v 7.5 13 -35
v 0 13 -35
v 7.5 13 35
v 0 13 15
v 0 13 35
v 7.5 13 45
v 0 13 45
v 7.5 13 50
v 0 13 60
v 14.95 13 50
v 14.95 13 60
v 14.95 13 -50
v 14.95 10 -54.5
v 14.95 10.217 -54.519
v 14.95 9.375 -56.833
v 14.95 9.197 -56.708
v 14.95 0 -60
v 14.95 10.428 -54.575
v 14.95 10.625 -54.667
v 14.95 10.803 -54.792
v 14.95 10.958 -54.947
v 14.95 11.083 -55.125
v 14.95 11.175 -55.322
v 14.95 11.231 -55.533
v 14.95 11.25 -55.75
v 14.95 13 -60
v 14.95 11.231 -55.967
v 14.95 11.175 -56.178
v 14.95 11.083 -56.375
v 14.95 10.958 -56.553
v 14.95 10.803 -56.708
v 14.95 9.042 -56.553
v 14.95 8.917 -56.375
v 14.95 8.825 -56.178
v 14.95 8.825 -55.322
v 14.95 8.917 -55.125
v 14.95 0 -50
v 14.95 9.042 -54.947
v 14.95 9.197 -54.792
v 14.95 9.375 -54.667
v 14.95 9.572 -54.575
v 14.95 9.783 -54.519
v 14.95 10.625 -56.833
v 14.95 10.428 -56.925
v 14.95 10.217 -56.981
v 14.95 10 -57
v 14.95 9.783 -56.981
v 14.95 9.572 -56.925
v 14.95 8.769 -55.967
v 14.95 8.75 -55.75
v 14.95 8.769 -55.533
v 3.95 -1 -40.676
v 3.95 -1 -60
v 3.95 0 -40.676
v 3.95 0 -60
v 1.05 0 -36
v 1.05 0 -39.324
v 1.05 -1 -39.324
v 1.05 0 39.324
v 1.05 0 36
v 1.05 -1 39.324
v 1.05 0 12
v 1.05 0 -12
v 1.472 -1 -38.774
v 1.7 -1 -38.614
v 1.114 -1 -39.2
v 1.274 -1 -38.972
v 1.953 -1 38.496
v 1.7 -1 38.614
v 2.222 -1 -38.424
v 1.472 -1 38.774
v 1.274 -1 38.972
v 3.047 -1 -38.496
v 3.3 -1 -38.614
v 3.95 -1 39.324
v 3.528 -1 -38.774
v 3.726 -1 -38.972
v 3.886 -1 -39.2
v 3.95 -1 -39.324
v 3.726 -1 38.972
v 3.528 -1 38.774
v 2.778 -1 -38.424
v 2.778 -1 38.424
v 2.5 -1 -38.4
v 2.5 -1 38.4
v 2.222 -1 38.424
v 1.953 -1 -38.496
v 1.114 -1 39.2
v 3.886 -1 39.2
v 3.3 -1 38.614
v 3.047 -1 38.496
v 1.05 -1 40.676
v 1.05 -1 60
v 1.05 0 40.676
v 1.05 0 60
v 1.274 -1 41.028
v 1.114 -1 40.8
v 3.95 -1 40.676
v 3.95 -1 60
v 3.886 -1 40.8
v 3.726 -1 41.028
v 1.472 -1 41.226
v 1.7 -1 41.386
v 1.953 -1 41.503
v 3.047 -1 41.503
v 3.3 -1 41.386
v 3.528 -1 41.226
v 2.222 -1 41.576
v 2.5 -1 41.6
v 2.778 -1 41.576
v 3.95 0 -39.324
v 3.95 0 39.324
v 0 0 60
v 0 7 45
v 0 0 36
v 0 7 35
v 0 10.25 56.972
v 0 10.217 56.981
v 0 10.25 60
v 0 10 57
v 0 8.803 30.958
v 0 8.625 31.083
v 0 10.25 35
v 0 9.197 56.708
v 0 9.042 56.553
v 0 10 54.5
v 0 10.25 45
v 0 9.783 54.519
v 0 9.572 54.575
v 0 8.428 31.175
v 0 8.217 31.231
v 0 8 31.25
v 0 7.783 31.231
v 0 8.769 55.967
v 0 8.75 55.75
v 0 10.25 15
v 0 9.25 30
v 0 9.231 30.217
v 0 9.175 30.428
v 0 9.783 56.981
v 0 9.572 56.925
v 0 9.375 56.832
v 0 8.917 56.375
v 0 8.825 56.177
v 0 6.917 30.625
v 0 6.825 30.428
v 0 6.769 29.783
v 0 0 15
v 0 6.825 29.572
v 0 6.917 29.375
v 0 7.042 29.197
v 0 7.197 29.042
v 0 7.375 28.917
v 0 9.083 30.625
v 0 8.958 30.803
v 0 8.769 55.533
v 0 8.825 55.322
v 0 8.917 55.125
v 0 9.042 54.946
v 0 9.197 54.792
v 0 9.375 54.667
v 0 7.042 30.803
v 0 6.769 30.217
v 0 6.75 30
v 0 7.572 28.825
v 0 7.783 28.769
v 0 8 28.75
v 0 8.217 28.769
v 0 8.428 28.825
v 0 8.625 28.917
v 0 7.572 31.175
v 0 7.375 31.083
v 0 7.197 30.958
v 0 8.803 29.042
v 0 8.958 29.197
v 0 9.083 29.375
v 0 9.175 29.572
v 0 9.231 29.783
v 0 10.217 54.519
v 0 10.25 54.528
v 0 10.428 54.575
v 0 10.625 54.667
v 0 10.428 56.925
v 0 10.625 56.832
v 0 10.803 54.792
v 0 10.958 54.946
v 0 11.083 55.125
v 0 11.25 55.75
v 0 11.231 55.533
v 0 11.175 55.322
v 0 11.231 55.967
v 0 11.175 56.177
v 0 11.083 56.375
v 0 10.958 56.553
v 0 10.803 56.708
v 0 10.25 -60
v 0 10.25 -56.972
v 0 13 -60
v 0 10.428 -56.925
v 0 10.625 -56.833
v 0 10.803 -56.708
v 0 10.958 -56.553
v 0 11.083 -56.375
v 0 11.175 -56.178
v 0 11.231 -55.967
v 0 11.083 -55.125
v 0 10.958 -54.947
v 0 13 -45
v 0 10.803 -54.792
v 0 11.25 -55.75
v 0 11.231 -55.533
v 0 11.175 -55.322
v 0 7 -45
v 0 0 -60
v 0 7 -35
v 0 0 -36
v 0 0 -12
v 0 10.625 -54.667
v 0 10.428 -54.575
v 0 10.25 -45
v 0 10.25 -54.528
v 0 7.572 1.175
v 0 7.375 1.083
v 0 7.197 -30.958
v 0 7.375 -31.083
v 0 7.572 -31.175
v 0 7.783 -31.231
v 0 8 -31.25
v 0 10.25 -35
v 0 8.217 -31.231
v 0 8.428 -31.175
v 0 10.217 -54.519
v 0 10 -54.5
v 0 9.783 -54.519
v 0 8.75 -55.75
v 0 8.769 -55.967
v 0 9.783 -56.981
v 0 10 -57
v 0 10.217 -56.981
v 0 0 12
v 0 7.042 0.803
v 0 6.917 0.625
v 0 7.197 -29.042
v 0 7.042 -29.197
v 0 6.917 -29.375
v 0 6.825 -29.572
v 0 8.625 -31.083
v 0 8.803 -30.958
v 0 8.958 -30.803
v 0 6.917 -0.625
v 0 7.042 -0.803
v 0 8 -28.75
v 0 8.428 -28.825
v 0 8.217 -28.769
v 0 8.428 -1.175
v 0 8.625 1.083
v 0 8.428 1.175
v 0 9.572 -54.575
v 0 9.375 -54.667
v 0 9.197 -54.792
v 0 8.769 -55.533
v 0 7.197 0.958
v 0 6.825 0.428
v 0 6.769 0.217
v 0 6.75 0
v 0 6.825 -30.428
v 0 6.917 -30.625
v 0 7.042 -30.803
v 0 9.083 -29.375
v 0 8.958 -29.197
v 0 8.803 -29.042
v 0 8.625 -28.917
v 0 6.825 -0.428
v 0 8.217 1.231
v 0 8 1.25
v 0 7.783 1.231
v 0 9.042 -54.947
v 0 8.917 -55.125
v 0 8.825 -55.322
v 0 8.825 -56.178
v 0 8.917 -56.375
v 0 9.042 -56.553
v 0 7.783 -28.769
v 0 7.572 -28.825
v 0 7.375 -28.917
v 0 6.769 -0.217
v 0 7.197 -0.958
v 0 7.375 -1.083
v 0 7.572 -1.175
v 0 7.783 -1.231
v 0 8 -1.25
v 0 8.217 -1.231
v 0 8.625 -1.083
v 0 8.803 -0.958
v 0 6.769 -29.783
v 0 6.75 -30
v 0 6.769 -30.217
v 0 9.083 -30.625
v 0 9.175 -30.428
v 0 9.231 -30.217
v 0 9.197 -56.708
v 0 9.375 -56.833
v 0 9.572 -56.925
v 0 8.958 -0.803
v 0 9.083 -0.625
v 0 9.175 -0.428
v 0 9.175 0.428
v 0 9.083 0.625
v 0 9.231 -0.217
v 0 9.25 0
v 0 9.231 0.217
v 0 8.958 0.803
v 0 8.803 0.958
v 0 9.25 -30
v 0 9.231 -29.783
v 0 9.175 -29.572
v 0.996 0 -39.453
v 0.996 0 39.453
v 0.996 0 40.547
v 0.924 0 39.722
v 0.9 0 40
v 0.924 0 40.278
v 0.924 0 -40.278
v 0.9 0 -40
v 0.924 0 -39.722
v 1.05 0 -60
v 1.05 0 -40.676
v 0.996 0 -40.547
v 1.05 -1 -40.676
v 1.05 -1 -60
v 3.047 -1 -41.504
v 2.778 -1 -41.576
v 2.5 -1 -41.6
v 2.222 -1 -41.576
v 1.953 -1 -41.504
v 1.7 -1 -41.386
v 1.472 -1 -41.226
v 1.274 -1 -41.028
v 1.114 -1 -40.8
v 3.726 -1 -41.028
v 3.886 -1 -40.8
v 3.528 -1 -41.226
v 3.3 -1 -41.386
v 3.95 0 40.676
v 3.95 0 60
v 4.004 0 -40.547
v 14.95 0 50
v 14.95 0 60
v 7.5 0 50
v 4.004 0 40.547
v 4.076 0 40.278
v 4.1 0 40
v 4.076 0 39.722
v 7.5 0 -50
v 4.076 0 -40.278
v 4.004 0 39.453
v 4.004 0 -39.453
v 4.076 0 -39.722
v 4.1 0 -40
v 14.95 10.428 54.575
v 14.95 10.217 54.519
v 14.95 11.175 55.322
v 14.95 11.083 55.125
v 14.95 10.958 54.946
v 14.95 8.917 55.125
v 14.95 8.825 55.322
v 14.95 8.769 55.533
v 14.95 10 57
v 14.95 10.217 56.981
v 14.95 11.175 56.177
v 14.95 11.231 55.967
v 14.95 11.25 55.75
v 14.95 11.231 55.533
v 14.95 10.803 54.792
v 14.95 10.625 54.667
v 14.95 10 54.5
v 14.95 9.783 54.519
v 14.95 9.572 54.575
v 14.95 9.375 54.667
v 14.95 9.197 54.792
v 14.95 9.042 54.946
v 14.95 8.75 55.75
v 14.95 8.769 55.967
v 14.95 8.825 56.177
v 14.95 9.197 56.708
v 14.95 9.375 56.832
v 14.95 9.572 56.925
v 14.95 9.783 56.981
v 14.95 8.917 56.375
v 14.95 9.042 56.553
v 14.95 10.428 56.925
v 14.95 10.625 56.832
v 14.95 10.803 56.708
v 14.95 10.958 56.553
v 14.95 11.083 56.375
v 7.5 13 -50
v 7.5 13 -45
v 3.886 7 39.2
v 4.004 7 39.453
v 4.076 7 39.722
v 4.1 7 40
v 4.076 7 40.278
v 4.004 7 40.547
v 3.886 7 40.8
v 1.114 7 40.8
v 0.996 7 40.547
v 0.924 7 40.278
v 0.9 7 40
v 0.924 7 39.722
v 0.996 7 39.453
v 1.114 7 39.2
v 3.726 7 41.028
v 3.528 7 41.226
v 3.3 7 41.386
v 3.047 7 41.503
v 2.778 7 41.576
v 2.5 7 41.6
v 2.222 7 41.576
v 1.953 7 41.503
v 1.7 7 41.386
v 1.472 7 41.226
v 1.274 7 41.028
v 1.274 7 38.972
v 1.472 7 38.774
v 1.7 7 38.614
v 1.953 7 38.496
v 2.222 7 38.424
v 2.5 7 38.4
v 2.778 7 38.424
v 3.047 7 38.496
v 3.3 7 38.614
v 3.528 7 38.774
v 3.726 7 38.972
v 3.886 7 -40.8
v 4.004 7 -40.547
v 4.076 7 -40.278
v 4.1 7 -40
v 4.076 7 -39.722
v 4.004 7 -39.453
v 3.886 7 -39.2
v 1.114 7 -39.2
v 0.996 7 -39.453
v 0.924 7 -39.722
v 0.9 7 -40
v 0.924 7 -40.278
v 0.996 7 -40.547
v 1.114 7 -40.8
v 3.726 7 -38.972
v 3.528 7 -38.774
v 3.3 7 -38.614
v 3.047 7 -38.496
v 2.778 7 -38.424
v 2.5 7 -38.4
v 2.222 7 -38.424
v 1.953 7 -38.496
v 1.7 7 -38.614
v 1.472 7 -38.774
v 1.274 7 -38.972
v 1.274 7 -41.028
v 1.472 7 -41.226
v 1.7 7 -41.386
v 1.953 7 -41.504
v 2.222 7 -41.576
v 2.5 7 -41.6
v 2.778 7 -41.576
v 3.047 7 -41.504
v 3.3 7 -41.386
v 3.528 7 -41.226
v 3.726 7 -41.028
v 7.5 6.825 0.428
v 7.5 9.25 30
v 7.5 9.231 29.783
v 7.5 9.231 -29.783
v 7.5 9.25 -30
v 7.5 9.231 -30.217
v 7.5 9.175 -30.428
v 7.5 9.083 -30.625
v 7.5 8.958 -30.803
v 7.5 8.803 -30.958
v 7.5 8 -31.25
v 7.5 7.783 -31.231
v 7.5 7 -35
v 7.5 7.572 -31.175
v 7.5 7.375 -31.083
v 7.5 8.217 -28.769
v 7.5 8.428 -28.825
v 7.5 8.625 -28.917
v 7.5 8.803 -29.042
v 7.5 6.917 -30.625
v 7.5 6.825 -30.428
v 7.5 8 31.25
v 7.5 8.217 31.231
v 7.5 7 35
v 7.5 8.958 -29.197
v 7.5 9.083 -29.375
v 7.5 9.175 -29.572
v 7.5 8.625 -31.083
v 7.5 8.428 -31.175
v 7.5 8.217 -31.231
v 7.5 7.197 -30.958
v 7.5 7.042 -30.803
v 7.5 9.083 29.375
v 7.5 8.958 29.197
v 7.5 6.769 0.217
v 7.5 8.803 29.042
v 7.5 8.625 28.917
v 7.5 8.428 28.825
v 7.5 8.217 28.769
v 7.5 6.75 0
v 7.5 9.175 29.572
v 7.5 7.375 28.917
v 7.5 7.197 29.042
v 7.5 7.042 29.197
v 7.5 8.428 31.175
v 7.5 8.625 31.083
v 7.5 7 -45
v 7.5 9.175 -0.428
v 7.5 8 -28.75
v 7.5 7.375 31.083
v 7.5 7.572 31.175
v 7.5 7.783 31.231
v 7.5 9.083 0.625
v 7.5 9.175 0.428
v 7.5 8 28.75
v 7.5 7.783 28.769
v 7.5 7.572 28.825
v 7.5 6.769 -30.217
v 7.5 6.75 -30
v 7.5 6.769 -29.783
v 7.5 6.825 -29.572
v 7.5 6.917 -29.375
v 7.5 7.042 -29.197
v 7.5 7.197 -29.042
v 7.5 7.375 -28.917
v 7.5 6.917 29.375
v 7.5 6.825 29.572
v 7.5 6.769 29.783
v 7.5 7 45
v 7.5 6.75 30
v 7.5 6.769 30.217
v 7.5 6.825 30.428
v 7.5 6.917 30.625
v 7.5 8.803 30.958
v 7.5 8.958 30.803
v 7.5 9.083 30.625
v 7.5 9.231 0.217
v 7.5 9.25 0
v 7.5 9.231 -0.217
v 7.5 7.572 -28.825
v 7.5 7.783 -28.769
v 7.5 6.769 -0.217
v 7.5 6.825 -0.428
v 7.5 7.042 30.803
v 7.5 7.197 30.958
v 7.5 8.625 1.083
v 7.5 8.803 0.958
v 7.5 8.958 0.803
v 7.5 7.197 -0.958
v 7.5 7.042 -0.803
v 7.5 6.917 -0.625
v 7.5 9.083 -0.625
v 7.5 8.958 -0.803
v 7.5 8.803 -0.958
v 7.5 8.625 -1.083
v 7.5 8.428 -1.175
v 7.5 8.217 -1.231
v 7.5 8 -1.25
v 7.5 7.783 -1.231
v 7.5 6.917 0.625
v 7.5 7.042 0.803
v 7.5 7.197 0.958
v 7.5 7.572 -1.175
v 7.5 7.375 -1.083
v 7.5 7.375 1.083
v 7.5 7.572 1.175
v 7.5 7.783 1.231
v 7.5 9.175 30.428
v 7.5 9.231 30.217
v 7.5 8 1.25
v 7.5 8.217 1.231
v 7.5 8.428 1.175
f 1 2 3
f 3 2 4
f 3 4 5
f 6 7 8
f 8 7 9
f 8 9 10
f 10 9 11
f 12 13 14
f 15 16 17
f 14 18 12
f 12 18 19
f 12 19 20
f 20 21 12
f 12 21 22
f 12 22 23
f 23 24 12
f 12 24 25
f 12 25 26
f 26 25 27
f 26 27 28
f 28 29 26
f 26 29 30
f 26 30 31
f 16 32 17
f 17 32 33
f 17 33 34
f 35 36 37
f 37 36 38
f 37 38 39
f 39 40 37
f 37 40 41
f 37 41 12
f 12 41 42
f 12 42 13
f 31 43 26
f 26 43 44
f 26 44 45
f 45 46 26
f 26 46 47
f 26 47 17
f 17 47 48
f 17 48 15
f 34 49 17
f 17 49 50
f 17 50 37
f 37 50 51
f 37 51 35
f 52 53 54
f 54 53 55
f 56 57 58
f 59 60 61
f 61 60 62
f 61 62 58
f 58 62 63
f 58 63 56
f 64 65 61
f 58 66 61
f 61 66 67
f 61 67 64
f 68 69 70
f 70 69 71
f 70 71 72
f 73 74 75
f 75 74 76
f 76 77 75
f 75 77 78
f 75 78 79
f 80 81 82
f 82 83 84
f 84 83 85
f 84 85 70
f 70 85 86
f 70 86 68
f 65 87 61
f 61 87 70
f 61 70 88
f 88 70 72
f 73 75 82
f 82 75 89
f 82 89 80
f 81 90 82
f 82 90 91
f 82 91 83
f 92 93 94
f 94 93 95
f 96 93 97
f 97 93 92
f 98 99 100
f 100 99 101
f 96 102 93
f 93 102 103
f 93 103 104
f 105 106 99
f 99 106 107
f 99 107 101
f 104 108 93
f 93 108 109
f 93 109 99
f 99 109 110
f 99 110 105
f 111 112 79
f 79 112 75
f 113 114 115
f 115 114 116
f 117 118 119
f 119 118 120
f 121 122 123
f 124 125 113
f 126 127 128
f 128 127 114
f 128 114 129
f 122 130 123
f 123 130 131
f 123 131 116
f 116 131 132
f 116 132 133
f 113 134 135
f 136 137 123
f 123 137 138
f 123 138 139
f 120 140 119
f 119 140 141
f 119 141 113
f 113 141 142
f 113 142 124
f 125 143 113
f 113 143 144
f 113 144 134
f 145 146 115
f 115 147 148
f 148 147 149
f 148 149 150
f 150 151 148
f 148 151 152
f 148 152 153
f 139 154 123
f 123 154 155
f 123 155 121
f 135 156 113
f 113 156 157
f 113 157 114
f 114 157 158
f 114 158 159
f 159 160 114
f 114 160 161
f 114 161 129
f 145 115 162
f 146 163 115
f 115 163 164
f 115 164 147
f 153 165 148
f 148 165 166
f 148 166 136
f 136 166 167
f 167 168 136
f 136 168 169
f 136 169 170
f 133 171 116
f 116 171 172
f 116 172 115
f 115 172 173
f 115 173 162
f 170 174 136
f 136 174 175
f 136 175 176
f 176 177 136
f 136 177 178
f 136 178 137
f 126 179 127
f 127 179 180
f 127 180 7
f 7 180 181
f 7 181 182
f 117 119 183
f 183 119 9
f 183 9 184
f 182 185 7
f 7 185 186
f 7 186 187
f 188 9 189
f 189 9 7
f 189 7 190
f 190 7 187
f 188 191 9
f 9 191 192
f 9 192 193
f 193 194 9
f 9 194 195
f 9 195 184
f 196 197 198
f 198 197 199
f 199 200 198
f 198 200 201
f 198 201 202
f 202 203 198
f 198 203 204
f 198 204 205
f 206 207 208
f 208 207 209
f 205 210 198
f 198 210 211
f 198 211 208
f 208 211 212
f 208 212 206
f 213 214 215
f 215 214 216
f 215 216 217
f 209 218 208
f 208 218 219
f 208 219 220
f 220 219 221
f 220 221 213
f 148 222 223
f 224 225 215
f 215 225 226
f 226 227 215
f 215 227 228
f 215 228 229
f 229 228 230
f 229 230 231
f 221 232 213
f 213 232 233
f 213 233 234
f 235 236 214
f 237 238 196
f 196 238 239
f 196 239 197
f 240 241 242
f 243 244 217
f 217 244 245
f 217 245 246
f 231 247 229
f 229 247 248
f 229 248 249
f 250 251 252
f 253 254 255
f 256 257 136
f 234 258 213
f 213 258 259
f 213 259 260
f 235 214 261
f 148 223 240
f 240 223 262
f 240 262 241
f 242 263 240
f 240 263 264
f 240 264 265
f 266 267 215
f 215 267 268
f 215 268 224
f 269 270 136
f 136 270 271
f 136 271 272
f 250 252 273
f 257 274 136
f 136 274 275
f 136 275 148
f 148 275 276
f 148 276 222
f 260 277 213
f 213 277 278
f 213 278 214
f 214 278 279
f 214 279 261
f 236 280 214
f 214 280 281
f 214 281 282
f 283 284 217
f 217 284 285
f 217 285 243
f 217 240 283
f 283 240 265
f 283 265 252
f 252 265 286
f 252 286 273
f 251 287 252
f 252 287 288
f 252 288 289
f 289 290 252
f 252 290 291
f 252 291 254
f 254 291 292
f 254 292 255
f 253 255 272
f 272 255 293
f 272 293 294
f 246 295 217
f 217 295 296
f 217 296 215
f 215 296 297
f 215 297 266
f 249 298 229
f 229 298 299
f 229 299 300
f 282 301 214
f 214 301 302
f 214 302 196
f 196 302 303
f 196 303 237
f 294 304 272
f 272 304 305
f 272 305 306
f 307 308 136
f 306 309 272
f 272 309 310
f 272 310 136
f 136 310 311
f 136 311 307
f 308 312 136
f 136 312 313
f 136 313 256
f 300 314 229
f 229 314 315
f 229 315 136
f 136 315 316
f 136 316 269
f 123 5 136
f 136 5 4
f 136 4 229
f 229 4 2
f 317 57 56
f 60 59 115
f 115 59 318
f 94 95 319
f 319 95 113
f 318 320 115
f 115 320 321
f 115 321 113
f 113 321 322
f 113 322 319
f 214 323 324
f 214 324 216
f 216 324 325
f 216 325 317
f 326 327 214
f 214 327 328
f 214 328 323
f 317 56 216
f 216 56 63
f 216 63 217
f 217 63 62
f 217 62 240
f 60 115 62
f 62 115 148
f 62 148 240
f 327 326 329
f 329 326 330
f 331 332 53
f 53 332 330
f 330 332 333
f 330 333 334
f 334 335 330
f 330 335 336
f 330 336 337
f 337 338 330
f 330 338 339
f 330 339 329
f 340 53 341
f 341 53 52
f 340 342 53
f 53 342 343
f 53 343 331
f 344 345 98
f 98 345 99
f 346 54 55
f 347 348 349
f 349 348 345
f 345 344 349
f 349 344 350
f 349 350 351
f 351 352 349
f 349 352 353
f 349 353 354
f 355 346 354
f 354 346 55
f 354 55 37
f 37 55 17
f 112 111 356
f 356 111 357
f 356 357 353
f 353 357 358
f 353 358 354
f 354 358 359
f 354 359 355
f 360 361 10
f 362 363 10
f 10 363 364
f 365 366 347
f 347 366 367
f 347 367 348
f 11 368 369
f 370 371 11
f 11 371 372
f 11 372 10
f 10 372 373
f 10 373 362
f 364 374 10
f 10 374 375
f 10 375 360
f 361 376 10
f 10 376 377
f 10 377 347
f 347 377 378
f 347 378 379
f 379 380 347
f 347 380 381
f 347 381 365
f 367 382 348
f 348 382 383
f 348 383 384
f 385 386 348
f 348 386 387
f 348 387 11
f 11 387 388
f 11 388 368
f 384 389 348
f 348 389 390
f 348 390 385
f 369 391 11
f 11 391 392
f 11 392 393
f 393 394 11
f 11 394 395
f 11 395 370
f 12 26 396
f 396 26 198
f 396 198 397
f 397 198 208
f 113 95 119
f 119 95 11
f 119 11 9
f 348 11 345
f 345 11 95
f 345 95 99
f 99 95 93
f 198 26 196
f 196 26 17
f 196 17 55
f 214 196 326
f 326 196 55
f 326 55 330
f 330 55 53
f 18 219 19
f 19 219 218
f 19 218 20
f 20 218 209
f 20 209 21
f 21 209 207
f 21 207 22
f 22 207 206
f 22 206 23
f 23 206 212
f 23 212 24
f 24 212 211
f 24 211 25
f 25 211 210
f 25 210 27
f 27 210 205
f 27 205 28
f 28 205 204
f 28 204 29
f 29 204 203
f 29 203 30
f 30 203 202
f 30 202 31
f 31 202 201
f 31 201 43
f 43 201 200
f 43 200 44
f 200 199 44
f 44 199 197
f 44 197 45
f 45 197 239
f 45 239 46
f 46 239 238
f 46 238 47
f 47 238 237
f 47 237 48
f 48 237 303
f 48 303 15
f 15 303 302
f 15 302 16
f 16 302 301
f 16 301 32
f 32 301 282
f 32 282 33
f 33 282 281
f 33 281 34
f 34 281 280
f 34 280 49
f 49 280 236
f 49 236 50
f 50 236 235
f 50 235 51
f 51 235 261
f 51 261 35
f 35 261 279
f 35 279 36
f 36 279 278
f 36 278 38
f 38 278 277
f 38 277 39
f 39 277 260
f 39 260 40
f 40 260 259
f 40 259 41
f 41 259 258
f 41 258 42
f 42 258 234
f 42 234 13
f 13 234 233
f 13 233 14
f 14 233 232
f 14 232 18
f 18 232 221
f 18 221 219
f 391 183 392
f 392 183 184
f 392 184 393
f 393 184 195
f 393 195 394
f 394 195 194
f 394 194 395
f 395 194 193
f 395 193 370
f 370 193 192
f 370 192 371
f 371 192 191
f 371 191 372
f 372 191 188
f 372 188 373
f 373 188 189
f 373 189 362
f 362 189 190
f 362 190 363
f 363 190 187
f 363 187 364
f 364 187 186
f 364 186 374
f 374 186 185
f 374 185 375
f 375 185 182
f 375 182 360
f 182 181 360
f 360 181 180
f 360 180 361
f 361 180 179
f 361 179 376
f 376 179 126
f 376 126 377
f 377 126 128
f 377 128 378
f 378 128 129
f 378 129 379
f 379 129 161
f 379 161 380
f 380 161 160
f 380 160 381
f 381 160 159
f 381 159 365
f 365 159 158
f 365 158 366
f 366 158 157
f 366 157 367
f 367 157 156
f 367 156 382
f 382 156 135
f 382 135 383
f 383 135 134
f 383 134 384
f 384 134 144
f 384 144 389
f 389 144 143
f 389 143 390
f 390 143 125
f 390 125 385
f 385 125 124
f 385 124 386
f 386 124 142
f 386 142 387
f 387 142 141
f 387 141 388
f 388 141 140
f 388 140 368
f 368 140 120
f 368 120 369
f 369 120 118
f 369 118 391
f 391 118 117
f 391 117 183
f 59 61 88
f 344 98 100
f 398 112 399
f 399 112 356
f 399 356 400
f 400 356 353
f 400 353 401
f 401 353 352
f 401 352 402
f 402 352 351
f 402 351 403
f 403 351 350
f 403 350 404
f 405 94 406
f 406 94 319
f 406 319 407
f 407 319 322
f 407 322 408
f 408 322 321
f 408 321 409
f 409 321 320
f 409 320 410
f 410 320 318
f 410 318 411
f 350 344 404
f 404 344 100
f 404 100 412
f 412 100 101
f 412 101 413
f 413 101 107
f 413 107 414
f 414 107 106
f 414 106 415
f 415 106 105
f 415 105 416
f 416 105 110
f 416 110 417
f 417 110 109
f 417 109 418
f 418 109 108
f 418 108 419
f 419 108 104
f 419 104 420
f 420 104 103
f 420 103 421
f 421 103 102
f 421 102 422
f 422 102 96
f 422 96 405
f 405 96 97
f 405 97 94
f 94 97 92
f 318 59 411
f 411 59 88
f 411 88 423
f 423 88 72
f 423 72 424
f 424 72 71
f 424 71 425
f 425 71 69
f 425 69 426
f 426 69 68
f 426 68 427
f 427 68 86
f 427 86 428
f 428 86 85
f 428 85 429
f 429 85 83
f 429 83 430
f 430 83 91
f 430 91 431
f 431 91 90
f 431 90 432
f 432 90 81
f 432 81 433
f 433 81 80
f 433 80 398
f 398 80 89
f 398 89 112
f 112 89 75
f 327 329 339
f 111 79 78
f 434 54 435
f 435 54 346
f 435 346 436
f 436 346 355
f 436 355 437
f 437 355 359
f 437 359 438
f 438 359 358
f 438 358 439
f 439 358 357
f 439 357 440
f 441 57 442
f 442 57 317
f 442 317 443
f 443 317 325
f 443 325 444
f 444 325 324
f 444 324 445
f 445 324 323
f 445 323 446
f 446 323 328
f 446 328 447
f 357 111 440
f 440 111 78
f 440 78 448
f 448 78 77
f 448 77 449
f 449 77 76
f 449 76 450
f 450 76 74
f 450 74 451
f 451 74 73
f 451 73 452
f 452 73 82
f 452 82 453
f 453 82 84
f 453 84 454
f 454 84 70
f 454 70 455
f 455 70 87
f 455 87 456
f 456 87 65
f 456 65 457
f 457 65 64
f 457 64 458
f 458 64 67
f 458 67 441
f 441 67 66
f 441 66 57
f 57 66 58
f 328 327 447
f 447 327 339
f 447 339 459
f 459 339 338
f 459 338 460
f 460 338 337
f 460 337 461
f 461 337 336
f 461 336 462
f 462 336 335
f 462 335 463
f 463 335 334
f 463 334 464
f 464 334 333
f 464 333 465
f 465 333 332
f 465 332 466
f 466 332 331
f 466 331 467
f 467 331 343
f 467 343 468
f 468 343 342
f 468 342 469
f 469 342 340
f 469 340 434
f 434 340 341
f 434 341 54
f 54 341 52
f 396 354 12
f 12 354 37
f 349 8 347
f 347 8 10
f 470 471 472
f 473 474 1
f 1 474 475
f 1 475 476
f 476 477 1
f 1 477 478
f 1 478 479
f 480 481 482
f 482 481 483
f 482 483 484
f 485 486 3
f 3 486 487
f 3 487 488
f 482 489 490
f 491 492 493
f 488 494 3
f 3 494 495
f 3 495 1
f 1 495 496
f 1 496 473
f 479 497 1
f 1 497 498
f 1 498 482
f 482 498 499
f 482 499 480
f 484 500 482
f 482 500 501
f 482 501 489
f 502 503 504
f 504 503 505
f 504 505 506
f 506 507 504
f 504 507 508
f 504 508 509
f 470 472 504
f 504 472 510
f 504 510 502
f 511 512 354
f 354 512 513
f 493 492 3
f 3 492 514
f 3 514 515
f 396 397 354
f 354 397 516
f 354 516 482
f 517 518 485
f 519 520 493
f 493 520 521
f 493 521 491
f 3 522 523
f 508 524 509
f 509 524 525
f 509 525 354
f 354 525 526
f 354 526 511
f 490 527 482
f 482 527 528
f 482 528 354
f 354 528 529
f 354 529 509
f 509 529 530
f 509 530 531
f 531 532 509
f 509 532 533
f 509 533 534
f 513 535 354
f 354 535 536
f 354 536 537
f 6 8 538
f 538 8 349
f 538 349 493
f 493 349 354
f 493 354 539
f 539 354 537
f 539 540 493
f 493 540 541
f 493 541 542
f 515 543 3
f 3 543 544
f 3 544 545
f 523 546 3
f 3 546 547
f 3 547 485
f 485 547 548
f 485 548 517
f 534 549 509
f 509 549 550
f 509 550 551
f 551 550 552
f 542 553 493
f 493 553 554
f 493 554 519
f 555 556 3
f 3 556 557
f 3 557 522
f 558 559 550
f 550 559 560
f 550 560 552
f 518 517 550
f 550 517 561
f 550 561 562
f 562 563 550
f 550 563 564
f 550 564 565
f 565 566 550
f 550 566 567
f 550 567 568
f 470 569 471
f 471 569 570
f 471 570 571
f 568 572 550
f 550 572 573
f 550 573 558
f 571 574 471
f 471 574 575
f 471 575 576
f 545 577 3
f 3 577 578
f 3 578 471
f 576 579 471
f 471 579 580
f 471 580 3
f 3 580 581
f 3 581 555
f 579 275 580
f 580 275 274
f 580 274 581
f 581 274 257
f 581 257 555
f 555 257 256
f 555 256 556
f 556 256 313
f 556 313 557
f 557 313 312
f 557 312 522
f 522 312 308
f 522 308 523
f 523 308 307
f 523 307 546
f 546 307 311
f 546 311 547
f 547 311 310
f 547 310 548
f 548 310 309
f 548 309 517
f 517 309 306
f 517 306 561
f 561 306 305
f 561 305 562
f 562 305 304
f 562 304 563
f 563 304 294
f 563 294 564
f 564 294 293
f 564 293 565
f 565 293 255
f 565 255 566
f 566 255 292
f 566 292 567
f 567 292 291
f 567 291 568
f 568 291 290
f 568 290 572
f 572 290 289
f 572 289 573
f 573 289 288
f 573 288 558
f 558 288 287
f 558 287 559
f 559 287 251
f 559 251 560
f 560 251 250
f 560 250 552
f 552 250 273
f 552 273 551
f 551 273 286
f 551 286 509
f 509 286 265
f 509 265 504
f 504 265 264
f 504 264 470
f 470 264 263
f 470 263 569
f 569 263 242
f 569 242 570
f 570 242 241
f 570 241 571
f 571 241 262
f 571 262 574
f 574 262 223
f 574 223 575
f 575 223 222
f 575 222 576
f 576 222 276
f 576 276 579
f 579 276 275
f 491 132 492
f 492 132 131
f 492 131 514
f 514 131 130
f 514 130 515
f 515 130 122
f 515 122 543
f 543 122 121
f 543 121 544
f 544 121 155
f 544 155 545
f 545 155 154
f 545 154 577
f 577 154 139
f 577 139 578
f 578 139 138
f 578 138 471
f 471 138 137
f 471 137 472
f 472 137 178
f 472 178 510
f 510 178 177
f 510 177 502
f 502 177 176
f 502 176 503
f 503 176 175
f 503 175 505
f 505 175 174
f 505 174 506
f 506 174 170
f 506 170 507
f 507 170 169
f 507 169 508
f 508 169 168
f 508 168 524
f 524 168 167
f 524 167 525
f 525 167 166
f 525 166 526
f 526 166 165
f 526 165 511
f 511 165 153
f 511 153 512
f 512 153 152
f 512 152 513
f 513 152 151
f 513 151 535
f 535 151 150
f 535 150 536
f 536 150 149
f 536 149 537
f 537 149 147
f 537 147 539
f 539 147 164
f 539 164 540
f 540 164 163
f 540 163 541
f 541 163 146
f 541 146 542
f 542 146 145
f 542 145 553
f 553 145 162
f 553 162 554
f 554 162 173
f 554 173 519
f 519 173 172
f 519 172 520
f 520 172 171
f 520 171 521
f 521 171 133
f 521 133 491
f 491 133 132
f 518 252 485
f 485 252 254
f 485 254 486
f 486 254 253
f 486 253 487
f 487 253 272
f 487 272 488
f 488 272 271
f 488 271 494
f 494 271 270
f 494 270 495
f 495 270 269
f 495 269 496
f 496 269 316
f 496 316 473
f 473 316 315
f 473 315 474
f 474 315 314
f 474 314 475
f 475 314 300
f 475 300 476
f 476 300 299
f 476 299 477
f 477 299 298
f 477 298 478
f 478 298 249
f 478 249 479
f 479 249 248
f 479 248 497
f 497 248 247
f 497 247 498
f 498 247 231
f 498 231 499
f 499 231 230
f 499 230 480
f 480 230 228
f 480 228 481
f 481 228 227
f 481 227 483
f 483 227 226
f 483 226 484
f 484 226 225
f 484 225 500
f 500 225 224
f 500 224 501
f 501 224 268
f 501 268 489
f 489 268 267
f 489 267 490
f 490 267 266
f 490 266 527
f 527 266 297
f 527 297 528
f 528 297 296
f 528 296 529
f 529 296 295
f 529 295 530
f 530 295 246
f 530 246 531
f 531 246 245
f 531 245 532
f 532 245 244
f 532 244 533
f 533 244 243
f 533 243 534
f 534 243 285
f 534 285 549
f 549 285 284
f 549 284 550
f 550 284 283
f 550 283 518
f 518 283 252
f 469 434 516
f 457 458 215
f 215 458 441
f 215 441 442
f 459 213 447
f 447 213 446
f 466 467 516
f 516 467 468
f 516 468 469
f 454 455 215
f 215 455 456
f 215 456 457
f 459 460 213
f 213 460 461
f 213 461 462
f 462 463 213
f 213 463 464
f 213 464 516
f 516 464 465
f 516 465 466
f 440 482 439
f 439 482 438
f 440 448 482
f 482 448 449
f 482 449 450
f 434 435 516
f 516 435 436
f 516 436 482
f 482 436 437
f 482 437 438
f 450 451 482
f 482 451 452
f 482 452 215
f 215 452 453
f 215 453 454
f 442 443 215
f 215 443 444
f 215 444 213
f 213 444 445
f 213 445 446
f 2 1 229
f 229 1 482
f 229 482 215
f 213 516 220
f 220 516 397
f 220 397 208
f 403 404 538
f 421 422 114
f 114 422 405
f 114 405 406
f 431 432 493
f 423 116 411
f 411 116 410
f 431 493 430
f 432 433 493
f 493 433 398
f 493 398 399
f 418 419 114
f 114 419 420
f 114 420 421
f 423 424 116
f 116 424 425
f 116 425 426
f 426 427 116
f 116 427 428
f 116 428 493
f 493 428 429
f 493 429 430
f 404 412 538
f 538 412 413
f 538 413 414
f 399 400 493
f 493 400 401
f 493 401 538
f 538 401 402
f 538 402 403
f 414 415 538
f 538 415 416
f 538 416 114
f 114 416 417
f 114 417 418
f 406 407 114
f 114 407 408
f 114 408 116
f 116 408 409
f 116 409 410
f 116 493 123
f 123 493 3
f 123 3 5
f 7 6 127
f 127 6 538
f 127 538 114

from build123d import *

# Parameters (mm, degrees)
MAIN_DEPTH               = 60
ESQUISSE2_R              = 1.25
HOLESFORMOTORBOARD_DEPTH = 15.95
ESQUISSE4_R              = 1.6
HOLESFORMAKERBEAM_DEPTH  = 15
SKETCH1_W                = 100
SKETCH1_H                = 13
POWERBOARDPINHOLES_DEPTH = 7.45
SKETCH2_R                = 1.25
WINDOWFIXHOLES_DEPTH     = 15.95
SKETCH3_W                = 10
SKETCH3_H                = 6
CUT_EXTRUDE1_DEPTH       = 15.95


with BuildPart() as part:
    # Esquisse1 → Main (new body, symmetric)
    with BuildSketch(Plane.XY):
        Polygon((0, 13), (14.95, 13), (14.95, 0), (3.95, 0), (3.95, -1), (1.05, -1), (1.05, 0), (0, 0), align=None)
    extrude(amount=MAIN_DEPTH, both=True)

    # Esquisse2 → HolesForMotorBoard (cut, through all)
    with BuildSketch(Plane(origin=(14.95, 0, 0), x_dir=(0, 0, -1), z_dir=(1, 0, 0))):
        with Locations((55.75, 10)):
            Circle(ESQUISSE2_R)
        with Locations((-55.75, 10)):
            Circle(ESQUISSE2_R)
    extrude(amount=-HOLESFORMOTORBOARD_DEPTH, mode=Mode.SUBTRACT)

    # Esquisse4 → HolesForMakerBeam (cut, through all)
    with BuildSketch(Plane(origin=(0, -1, 0), x_dir=(-1, 0, 0), z_dir=(0, -1, 0))):
        with Locations((-2.5, -40)):
            Circle(ESQUISSE4_R)
        with Locations((-2.5, 40)):
            Circle(ESQUISSE4_R)
    extrude(amount=-HOLESFORMAKERBEAM_DEPTH, mode=Mode.SUBTRACT)

    # Sketch1 → PowerBoardPinHoles (cut)
    with BuildSketch(Plane(origin=(14.95, 0, 0), x_dir=(0, 0, -1), z_dir=(1, 0, 0))):
        with Locations((0, 6.5)):
            Rectangle(SKETCH1_W, SKETCH1_H)
    extrude(amount=-POWERBOARDPINHOLES_DEPTH, mode=Mode.SUBTRACT)

    # Sketch2 → WindowFixHoles (cut, through all)
    with BuildSketch(Plane.ZY):
        with Locations((0, 8)):
            Circle(SKETCH2_R)
        with Locations((-30, 8)):
            Circle(SKETCH2_R)
        with Locations((30, 8)):
            Circle(SKETCH2_R)
    extrude(amount=-WINDOWFIXHOLES_DEPTH, mode=Mode.SUBTRACT)

    # Sketch3 → Cut-Extrude1 (cut, through all)
    with BuildSketch(Plane.ZY):
        with Locations((-40, 10)):
            Rectangle(SKETCH3_W, SKETCH3_H)
        with Locations((40, 10)):
            Rectangle(SKETCH3_W, SKETCH3_H)
    extrude(amount=-CUT_EXTRUDE1_DEPTH, mode=Mode.SUBTRACT)


solid = part.part
